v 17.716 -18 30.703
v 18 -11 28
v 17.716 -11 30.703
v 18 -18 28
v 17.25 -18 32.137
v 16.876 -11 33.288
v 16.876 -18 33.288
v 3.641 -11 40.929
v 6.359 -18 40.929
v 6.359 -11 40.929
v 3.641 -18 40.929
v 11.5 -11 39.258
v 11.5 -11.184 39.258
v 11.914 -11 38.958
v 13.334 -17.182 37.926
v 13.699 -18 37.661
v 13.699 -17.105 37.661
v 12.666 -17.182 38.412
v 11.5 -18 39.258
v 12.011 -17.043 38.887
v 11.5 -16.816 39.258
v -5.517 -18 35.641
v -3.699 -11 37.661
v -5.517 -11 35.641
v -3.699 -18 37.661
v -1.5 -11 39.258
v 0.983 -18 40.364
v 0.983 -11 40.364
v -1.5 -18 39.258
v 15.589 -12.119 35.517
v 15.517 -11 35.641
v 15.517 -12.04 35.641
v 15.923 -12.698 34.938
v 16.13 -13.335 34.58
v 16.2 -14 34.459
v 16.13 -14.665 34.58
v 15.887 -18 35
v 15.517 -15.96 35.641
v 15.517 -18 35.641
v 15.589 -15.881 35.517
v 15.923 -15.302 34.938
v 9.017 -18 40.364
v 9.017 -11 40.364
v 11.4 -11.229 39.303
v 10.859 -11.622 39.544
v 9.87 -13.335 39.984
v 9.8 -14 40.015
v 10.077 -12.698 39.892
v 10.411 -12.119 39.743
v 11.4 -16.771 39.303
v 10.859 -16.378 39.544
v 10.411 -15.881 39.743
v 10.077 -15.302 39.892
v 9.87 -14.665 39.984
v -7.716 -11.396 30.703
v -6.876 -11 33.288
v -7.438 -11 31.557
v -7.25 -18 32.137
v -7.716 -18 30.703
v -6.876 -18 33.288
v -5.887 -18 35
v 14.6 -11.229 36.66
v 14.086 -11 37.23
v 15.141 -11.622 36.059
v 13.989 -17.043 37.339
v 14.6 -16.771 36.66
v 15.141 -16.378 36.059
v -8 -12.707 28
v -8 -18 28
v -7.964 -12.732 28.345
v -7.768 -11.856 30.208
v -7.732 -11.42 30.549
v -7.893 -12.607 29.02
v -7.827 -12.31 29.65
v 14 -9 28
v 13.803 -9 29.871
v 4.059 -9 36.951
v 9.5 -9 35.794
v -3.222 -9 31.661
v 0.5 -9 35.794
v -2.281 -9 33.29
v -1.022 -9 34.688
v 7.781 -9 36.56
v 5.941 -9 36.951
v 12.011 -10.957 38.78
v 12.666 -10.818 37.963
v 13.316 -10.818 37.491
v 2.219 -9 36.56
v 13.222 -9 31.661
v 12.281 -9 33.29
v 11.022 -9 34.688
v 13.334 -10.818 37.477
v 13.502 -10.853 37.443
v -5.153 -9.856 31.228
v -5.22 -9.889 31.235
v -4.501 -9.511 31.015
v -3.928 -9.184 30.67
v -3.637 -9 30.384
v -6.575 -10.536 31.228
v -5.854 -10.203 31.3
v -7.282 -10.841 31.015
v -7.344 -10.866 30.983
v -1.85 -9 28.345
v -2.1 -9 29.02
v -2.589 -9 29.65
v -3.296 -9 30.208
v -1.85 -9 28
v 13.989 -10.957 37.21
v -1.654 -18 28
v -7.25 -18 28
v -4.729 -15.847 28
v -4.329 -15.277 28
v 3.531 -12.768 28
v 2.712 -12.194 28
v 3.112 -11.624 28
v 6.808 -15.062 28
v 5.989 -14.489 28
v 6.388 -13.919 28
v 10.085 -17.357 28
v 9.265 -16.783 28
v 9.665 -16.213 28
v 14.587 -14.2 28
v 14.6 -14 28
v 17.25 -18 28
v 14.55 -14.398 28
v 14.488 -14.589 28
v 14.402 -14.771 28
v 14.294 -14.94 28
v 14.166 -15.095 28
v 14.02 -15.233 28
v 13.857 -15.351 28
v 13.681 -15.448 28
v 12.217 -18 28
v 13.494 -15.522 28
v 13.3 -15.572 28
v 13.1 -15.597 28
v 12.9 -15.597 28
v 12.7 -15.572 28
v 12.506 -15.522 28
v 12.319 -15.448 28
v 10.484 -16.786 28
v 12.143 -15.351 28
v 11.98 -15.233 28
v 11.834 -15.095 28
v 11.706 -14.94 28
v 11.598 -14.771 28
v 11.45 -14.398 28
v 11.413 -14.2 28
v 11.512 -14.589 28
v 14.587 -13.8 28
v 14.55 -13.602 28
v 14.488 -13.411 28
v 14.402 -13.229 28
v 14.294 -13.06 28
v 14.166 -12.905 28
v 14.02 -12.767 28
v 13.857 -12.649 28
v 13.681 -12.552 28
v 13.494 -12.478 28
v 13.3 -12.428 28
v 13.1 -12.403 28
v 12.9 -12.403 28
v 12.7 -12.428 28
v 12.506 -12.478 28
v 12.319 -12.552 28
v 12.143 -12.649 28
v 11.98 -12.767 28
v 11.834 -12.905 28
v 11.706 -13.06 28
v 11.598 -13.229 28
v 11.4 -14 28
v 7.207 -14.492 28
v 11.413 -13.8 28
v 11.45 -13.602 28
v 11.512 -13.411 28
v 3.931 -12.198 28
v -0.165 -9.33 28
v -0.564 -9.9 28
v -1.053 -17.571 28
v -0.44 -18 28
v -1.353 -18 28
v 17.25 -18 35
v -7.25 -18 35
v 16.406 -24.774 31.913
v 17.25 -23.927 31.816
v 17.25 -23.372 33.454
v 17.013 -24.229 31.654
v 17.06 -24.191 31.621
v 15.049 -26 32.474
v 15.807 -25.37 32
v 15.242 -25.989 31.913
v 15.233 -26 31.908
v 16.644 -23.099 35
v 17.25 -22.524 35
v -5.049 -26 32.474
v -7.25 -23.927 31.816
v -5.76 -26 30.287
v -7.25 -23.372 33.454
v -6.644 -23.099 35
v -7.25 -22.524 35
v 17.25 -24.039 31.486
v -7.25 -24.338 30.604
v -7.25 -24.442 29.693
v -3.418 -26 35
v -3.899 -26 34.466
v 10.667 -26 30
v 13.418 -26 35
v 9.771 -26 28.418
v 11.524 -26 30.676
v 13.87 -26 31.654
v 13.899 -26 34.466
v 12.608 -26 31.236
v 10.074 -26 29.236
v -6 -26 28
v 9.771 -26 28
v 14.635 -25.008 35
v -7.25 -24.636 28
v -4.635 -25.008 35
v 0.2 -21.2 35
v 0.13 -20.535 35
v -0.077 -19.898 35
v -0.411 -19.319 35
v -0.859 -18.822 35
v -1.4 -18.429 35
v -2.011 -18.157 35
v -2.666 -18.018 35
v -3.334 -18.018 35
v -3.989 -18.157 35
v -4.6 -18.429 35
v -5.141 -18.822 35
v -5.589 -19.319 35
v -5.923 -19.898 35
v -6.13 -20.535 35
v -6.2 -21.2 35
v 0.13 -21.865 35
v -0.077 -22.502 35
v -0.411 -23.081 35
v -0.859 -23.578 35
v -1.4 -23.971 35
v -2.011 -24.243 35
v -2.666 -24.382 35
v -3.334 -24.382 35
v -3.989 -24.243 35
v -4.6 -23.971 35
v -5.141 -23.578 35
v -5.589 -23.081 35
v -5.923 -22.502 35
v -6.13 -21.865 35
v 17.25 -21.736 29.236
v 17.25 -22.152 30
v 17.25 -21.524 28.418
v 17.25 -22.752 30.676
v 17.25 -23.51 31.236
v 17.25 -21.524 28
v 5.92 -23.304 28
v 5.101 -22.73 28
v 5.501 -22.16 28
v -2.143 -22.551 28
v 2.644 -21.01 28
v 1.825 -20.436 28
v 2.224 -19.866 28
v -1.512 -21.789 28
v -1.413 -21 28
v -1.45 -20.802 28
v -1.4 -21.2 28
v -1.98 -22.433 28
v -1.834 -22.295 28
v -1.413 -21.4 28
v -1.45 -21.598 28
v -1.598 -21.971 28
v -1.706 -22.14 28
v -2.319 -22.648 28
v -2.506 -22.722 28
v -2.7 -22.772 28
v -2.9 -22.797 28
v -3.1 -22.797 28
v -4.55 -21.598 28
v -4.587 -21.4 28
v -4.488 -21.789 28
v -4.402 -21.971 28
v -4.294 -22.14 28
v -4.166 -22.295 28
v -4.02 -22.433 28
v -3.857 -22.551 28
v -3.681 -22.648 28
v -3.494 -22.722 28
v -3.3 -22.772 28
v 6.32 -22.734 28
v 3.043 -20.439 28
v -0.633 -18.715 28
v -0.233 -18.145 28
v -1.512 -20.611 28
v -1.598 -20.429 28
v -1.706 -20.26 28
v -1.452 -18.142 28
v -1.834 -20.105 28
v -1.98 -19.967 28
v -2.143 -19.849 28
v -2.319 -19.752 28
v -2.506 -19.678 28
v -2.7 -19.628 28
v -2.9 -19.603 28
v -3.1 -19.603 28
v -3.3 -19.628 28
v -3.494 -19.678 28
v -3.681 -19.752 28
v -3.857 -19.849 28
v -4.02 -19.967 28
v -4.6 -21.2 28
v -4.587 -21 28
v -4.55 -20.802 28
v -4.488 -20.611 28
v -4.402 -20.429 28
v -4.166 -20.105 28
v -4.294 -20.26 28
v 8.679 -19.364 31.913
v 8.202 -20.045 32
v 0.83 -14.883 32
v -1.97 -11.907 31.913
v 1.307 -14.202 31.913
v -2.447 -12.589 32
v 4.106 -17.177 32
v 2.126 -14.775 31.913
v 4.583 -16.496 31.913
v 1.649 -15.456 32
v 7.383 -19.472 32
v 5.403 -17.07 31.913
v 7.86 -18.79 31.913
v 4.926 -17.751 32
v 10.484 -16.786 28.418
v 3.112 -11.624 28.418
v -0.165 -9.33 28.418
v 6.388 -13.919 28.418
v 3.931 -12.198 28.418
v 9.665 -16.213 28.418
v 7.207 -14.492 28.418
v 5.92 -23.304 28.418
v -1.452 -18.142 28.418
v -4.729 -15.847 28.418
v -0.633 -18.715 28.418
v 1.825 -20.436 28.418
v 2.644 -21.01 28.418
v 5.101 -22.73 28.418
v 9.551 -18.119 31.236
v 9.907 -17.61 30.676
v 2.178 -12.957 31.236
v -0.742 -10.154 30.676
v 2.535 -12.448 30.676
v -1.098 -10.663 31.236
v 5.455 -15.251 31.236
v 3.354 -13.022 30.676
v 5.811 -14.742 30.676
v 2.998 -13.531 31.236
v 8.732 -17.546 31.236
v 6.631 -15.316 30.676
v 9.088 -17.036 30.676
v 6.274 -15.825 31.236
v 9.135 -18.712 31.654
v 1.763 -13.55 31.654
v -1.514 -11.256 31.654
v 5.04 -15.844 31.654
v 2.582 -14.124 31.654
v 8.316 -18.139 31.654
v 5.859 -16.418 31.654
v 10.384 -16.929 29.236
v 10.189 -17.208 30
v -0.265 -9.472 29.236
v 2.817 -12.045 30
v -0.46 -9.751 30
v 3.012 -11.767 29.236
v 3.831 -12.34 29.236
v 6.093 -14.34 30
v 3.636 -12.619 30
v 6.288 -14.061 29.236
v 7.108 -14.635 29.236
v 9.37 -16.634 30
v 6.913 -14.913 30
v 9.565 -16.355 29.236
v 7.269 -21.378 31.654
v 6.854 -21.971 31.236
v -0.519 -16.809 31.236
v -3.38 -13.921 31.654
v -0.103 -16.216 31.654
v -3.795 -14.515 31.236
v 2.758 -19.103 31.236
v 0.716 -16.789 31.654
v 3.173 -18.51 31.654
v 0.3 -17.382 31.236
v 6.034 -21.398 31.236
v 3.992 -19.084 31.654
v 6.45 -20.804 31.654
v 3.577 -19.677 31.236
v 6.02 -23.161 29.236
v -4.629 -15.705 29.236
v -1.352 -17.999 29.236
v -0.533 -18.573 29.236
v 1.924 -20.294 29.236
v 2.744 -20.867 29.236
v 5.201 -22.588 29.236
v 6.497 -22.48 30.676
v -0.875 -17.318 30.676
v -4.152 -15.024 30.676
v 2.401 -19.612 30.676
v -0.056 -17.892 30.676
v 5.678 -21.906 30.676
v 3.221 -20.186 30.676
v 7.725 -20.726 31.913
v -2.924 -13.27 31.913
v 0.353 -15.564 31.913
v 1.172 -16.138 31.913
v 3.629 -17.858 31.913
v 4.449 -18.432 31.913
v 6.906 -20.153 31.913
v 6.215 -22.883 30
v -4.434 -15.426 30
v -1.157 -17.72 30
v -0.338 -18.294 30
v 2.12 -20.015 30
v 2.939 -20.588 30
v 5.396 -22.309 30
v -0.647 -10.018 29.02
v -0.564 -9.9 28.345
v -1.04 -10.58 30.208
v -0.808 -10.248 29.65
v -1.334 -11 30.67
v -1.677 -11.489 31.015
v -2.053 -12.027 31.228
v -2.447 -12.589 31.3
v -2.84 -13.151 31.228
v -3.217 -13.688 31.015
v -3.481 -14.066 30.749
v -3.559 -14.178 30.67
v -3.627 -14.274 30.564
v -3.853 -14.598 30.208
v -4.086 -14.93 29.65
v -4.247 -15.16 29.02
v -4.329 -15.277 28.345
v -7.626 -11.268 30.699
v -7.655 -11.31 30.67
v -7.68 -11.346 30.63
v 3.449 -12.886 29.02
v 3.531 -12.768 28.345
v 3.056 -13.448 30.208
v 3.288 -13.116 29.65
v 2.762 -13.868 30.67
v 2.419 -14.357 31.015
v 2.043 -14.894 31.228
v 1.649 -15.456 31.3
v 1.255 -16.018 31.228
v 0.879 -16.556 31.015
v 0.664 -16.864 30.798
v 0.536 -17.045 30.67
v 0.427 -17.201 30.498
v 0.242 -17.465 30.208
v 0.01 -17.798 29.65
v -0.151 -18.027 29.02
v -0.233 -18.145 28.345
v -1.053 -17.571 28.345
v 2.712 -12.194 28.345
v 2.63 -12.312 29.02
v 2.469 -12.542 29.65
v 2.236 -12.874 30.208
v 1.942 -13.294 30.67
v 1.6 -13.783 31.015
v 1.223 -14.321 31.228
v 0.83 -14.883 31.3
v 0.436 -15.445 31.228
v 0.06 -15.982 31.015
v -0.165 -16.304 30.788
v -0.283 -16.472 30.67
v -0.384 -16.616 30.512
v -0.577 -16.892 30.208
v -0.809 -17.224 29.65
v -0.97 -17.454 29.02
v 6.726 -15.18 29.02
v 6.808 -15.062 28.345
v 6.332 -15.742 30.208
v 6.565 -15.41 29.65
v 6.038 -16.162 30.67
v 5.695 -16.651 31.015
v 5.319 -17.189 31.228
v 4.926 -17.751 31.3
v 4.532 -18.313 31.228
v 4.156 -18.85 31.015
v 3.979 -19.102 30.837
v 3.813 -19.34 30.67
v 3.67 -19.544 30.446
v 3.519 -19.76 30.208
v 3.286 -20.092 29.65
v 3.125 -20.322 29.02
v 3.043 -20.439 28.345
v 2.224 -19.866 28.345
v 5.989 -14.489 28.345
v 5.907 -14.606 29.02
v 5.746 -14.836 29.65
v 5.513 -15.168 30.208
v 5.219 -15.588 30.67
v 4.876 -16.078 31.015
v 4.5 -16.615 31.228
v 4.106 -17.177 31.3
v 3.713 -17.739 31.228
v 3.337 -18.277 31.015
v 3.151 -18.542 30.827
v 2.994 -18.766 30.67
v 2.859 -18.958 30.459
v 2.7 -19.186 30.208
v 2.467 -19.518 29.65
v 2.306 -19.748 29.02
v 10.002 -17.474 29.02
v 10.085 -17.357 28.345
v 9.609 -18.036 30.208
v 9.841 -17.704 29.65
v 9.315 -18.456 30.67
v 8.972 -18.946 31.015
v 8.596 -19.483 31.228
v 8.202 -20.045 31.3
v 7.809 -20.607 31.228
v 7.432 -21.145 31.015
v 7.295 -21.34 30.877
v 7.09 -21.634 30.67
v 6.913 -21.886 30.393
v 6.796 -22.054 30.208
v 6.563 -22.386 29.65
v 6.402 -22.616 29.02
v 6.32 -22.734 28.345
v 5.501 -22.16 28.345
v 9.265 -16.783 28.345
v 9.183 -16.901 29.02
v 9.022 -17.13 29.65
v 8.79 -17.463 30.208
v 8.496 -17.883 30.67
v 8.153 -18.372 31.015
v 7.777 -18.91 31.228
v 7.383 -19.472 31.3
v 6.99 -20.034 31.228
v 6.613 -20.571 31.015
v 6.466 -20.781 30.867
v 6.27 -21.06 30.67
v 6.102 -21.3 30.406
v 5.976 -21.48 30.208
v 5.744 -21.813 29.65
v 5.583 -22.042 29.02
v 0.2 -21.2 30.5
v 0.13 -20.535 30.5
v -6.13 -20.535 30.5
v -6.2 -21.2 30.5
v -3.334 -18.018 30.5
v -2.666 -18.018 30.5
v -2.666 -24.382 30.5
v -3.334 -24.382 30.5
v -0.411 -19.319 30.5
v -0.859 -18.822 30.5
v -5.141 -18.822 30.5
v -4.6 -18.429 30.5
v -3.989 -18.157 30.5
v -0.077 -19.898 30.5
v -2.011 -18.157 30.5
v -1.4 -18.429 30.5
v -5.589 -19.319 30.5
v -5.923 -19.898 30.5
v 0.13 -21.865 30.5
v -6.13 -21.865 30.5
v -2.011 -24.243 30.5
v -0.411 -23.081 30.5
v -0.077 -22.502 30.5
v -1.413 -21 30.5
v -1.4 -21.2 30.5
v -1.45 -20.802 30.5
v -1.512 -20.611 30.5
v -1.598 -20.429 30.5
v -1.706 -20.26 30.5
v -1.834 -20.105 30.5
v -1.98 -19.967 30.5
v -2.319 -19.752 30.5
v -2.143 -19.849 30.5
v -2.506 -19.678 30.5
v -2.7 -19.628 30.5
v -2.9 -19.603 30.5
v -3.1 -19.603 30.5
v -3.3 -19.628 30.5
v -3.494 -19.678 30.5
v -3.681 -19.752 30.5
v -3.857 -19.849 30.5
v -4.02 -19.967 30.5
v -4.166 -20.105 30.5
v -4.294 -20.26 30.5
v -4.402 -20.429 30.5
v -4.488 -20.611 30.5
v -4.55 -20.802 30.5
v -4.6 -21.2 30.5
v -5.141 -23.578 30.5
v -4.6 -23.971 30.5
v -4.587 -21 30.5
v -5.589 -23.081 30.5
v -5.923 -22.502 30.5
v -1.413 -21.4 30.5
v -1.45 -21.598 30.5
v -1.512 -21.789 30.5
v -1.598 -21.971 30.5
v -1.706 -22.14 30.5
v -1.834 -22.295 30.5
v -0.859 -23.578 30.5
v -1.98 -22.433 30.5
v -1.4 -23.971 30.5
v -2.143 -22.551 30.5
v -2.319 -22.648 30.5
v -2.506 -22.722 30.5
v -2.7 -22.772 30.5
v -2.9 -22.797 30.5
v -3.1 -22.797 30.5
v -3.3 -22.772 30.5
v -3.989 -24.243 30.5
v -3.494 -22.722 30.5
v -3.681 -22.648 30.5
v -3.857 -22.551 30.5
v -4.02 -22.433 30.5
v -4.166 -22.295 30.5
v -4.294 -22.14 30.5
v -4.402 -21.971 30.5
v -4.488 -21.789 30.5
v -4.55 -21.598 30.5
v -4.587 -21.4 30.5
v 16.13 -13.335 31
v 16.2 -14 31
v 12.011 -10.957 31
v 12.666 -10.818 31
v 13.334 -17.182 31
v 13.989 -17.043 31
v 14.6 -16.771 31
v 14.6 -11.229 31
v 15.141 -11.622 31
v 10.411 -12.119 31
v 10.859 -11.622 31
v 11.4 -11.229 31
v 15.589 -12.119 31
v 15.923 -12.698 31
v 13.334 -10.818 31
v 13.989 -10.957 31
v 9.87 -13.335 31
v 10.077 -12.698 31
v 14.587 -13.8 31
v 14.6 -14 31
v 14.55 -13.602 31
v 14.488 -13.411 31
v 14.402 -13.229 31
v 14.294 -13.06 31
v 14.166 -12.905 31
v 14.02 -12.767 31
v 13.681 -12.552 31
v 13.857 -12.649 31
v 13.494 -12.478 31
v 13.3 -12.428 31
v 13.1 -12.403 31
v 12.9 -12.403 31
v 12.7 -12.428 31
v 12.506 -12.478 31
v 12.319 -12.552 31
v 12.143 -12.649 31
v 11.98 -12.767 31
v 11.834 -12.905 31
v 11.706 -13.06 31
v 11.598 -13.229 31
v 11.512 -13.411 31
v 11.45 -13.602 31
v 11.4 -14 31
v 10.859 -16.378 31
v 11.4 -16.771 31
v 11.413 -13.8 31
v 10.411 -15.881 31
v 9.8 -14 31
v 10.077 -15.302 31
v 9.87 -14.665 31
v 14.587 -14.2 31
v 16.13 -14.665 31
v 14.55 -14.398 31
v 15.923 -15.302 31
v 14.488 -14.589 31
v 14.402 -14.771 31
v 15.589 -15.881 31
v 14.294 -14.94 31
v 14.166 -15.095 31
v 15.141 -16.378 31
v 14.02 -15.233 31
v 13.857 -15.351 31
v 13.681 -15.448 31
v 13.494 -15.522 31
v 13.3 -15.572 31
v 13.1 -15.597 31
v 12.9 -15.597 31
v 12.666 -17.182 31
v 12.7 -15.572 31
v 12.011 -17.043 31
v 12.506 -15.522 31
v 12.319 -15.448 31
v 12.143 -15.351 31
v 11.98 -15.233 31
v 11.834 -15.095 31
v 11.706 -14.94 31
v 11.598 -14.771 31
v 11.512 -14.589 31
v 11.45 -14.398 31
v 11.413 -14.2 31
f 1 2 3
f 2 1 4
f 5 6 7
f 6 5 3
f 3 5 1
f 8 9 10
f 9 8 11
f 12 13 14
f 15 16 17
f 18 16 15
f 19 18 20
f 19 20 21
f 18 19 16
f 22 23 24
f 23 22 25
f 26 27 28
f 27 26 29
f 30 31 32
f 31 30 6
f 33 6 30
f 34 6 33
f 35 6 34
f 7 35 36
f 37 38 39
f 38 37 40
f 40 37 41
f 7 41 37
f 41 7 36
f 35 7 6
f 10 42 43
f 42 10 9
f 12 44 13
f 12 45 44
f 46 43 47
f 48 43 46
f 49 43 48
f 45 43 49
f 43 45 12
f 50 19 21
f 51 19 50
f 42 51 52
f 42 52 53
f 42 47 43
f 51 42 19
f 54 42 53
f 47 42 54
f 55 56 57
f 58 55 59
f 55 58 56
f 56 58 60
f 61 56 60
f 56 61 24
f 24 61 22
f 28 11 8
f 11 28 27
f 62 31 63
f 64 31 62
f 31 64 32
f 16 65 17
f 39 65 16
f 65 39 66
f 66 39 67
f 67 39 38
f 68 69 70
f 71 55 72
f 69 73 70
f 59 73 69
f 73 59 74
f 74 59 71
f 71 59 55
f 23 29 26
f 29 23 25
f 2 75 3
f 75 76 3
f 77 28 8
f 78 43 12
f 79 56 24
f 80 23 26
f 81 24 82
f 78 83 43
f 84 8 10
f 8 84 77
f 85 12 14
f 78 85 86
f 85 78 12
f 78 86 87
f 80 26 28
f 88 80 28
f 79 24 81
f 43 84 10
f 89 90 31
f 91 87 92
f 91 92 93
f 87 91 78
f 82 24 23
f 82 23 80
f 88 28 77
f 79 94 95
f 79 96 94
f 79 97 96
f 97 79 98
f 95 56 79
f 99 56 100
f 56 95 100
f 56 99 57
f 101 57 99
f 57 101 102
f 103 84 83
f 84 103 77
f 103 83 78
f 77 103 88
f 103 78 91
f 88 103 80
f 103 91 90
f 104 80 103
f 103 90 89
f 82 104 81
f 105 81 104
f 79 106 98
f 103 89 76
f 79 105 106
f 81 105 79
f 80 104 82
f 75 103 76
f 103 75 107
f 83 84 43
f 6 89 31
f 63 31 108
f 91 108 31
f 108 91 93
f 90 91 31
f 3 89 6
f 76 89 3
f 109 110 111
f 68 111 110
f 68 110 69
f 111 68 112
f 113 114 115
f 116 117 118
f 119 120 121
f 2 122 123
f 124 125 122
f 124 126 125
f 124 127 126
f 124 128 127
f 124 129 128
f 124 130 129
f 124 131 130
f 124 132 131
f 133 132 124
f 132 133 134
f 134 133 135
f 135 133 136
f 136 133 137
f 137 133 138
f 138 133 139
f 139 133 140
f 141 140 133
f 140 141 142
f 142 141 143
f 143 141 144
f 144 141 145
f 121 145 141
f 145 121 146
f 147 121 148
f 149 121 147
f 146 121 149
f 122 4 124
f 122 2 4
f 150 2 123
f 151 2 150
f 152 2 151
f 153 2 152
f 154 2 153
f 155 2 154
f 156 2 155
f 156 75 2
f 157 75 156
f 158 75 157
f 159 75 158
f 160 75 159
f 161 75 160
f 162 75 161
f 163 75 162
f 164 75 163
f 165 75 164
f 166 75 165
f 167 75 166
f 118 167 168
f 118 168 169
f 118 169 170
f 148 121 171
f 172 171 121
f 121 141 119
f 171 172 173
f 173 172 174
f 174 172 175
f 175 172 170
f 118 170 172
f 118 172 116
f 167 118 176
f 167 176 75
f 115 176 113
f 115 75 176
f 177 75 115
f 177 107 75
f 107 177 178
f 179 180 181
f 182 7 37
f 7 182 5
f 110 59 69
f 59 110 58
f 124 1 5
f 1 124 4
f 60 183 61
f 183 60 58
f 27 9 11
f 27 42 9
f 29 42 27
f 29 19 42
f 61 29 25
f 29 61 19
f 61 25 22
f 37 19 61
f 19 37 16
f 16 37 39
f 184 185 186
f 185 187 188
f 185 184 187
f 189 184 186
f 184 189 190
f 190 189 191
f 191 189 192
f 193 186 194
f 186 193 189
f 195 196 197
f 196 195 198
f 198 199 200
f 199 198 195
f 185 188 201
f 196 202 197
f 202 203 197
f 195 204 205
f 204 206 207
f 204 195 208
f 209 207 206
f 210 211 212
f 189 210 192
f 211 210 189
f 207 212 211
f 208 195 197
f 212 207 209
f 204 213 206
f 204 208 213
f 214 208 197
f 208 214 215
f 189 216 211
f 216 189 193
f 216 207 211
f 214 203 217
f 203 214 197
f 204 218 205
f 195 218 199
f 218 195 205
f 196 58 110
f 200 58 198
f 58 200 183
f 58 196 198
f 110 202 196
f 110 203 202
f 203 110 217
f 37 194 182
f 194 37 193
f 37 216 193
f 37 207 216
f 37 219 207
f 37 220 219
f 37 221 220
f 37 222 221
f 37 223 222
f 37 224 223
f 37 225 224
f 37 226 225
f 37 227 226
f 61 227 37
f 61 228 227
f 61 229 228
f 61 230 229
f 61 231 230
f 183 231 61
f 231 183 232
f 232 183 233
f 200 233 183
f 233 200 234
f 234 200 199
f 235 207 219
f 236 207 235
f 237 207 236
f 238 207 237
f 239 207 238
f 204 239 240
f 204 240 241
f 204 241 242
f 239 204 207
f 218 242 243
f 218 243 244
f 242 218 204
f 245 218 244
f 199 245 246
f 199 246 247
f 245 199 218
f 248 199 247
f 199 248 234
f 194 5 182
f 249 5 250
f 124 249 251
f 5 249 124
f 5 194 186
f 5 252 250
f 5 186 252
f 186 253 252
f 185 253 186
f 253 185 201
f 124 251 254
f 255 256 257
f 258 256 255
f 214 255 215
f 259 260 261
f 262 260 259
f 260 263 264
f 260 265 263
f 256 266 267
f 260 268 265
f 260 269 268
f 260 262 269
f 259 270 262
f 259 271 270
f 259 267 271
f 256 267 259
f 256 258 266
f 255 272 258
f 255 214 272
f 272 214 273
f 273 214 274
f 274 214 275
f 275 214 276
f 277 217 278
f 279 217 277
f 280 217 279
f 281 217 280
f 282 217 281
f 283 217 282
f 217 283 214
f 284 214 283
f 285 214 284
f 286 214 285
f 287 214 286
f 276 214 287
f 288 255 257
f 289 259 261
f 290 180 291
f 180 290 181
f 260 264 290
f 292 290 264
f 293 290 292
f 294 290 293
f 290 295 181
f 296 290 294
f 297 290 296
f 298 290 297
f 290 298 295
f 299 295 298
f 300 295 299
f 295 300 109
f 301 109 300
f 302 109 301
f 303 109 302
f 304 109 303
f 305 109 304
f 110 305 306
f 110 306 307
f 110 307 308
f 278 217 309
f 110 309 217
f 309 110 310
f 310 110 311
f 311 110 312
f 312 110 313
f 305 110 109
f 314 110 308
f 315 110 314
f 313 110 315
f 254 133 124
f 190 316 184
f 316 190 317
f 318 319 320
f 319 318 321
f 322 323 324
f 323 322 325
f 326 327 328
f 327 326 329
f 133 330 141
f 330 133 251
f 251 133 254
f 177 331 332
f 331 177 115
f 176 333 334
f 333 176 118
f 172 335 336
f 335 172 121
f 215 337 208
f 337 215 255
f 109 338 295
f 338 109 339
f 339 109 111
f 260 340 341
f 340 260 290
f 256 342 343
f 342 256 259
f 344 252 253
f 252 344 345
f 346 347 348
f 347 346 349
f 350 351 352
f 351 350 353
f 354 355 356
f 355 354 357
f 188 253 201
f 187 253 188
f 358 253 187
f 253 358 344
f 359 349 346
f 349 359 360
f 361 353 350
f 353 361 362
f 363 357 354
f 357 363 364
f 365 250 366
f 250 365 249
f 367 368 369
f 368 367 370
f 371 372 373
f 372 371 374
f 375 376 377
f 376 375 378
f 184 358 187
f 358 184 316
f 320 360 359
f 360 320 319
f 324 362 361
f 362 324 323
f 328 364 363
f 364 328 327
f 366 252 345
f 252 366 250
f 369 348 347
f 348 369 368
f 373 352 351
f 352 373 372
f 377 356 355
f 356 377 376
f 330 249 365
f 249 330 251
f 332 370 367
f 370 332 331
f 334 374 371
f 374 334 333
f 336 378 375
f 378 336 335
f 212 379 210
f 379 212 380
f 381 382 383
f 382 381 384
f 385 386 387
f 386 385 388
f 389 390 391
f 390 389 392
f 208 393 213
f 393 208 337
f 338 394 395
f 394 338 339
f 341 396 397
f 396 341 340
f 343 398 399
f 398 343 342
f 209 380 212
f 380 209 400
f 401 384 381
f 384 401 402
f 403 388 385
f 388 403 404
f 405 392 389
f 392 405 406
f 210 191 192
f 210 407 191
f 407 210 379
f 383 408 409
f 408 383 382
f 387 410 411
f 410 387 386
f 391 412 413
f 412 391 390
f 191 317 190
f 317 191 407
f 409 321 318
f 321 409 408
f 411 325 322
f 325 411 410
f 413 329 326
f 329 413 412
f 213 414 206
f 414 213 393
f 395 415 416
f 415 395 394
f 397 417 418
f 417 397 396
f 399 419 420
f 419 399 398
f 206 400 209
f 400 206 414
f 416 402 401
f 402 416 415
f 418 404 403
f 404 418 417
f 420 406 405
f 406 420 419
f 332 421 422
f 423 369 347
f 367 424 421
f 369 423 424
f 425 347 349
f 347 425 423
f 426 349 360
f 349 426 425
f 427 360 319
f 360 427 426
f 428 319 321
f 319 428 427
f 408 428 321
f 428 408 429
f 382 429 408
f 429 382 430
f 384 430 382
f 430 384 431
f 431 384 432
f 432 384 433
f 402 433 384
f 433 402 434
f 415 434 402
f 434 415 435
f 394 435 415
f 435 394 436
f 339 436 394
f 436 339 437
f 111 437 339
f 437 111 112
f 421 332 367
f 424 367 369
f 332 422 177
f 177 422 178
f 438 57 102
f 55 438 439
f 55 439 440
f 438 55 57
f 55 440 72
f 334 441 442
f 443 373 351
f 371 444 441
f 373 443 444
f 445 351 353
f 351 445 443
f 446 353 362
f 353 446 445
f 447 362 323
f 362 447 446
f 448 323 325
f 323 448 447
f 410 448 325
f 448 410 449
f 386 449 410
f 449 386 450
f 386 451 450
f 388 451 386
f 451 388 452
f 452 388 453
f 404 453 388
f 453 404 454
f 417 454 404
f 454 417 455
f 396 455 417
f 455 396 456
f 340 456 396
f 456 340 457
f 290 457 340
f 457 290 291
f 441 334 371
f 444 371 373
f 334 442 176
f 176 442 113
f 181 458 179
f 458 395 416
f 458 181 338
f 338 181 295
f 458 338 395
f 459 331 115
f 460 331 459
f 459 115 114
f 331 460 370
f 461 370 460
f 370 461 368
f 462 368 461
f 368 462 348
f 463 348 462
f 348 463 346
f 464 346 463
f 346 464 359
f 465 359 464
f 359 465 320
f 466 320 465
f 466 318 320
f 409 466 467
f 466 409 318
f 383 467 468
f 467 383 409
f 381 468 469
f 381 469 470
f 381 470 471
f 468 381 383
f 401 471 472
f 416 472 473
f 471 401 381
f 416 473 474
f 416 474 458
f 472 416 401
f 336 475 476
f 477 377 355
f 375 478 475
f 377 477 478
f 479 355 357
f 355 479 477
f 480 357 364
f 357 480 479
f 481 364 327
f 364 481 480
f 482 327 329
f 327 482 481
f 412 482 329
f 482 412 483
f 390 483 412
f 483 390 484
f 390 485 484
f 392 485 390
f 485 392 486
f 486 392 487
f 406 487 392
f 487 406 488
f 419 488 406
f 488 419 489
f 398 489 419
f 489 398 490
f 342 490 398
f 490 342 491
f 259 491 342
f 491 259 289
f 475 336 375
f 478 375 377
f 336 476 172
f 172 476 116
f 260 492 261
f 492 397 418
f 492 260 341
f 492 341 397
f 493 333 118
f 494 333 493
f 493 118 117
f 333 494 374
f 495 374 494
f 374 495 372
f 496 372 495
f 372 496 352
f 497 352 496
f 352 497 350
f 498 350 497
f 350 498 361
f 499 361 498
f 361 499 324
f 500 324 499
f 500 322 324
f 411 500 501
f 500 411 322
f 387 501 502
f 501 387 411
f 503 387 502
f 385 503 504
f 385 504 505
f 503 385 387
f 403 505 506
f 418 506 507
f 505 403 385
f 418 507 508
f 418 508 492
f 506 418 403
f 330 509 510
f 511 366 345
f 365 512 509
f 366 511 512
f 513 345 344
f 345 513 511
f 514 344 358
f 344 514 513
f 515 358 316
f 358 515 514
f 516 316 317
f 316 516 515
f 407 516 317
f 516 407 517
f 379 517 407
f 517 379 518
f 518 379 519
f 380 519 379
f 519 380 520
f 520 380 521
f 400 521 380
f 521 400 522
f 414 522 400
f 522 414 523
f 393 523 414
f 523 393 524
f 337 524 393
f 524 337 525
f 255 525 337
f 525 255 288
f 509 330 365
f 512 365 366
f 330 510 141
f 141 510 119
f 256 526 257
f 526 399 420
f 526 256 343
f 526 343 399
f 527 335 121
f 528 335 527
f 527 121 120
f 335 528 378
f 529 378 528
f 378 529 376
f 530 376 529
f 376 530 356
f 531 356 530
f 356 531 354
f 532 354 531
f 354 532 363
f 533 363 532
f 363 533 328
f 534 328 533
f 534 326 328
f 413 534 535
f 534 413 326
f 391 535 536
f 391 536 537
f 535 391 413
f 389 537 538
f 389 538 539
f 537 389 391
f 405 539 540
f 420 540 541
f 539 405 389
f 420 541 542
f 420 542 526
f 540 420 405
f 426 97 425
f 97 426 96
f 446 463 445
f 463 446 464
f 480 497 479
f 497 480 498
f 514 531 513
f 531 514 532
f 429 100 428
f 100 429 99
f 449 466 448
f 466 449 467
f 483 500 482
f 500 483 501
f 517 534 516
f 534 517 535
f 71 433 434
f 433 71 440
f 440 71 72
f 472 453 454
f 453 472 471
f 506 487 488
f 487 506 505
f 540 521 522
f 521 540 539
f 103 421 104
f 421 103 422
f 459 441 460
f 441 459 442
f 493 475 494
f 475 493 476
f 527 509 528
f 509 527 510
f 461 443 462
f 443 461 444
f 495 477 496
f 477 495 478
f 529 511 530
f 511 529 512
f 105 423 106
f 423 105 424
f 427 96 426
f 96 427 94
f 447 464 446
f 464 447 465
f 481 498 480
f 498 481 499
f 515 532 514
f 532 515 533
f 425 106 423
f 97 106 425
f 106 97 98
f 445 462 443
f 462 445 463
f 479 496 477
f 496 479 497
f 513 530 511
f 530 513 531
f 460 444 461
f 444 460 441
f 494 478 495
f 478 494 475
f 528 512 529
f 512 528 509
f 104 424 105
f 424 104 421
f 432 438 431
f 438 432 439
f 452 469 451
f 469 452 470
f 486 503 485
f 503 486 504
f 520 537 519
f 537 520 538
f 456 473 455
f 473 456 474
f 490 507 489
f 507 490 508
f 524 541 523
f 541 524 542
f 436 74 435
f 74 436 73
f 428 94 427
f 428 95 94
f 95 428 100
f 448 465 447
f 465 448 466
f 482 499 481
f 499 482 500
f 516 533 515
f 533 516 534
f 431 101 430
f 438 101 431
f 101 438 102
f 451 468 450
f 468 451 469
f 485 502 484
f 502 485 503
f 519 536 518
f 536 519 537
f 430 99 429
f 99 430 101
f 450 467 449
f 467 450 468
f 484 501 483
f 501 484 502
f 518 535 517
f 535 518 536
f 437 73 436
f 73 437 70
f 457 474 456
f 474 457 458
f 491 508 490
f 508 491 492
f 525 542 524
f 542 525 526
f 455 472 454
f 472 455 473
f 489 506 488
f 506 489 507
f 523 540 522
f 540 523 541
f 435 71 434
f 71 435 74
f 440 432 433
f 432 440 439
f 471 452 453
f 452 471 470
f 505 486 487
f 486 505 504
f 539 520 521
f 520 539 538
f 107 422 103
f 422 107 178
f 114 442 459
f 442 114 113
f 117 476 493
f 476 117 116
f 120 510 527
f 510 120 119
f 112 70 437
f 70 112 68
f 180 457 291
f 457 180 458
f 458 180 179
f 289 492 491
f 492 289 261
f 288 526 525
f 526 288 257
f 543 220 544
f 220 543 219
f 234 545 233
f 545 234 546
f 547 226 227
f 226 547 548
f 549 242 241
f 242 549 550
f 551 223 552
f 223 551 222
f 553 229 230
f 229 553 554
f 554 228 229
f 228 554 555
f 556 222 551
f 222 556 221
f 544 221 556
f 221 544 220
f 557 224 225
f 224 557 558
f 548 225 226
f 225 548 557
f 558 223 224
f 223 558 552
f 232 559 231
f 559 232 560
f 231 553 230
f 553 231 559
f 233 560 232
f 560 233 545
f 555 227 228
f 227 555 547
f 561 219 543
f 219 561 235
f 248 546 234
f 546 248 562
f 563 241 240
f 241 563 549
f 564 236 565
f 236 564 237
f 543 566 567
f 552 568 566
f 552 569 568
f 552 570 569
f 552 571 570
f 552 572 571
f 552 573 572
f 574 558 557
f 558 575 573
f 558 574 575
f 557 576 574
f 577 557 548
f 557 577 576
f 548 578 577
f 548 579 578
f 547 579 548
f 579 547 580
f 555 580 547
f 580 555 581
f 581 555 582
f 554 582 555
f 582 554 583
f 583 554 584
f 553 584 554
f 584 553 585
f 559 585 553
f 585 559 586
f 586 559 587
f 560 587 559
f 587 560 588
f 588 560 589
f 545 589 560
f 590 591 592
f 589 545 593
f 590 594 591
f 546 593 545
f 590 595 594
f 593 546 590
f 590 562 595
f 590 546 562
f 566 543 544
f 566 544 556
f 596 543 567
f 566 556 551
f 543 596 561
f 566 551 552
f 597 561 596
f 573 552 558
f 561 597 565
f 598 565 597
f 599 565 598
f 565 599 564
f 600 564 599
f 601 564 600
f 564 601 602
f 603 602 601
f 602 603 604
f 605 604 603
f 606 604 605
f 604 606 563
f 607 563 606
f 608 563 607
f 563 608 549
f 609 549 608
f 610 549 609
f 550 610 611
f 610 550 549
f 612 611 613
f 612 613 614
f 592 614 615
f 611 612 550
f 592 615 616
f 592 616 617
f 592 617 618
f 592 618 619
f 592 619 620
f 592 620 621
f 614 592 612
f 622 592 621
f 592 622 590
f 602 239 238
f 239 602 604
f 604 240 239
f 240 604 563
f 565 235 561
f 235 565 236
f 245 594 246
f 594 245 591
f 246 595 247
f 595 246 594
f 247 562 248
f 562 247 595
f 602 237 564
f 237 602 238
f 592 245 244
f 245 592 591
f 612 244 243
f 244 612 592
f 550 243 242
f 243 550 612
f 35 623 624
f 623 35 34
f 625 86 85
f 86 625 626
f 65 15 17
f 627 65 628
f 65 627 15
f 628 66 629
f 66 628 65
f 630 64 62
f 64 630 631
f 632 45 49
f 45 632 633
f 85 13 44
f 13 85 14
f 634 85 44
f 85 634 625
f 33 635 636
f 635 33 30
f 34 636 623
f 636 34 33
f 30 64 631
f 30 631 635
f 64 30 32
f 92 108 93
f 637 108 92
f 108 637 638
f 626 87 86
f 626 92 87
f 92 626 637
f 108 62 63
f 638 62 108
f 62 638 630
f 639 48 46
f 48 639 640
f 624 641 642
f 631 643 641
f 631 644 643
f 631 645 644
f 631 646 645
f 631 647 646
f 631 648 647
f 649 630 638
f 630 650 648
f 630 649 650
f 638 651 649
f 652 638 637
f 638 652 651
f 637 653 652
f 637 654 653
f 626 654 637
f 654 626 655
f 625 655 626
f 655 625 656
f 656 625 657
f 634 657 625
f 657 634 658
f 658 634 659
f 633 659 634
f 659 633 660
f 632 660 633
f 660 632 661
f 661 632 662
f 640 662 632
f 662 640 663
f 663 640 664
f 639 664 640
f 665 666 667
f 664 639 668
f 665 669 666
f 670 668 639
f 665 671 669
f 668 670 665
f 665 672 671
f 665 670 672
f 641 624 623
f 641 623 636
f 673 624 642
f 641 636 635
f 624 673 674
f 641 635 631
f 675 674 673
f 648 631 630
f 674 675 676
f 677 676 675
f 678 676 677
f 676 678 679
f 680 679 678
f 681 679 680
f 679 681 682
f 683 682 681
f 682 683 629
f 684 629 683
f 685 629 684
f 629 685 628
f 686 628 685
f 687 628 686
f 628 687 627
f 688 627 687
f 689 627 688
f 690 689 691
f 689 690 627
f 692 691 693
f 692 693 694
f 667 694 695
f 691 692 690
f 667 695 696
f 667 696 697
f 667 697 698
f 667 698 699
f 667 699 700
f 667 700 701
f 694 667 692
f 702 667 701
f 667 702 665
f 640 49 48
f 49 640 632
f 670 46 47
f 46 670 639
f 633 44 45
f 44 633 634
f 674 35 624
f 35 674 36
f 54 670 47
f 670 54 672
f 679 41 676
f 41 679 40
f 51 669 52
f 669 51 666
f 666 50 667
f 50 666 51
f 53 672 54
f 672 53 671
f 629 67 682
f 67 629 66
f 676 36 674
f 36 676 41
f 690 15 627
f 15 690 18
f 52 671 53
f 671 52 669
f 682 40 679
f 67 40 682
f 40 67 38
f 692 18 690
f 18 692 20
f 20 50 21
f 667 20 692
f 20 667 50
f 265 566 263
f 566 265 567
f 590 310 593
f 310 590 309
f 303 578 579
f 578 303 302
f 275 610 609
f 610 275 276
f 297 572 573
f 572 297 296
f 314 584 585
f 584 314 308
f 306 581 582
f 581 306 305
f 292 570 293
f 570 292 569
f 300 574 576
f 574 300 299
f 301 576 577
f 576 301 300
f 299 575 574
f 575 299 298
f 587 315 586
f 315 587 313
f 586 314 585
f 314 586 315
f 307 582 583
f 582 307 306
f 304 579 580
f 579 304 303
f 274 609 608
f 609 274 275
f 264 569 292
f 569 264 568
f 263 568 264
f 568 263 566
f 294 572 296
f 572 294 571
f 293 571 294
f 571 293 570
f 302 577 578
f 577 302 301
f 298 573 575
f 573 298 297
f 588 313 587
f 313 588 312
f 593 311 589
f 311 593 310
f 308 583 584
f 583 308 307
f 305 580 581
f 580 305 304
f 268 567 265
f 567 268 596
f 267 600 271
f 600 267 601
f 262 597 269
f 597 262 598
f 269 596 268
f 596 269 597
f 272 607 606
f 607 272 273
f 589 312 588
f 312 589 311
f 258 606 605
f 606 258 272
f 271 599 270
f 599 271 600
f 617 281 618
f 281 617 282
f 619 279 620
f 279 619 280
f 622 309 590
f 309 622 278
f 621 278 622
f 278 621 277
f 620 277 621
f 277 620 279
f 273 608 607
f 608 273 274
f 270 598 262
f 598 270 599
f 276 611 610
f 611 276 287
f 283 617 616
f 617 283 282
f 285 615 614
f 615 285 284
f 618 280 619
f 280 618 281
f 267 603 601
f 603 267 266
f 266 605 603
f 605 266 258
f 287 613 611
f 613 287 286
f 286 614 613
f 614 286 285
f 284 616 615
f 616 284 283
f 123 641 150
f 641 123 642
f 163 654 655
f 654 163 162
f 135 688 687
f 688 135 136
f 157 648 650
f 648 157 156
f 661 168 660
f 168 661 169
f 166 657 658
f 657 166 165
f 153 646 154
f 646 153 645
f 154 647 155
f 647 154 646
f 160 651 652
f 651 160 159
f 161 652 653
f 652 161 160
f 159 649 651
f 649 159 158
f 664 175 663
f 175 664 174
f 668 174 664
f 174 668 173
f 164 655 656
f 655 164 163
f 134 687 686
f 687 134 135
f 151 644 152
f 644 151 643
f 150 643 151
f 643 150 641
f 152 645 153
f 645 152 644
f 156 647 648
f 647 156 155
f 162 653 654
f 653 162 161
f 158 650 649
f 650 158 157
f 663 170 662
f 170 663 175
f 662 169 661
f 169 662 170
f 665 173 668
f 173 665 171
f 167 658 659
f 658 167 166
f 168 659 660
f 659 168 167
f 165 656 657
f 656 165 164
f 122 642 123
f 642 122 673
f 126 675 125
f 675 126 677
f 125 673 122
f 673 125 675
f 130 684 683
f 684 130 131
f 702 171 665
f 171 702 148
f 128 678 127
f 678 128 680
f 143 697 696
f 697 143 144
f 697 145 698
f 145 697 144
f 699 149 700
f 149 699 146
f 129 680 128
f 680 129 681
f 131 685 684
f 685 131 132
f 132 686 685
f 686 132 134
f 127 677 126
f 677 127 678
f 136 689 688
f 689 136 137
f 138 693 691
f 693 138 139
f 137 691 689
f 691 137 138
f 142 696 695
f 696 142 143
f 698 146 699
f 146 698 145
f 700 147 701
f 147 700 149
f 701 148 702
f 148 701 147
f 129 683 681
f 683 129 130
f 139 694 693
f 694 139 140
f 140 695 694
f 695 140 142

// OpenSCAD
// PRUSA iteration4
// Heatbed cable clip
// GNU GPL v3
// Josef Průša <iam@josefprusa.cz> and contributors
// http://www.reprap.org/wiki/Prusa_Mendel
// http://prusamendel.org


 module heatbed_cable_clip()
{
    
difference()
{    
    
    union()
    {
        difference()
        {
            union()
            {
                // body base
                translate([75,99,28]) rotate([90,0,0]) cylinder( h = 15, r = 13, $fn=30); 
                translate([75,101,28]) rotate([90,0,0]) cylinder( h = 2, r1=9,r2 = 13, $fn=30); 
                
            }

             
           
            
            // cut flat and shape
            translate([60,82,14]) cube([30,20,14]);  
            translate([60,72,20]) cube([30,20,30]); 
        }
         
        
        difference() {
        translate([62.75,84,28]) cube([24.5,8,7]);
        difference () {
        translate([75,85,28]) rotate([90,0,0]) cube([30,20,10], center = true);    
        translate([75,90,28]) rotate([90,0,0]) cylinder(h=6,r1=16.5,r2=11,$fn=30);   
           
        } 
    }}
    
    // cable opening
    translate([61,102,28]) rotate([35,90,0])
    
    difference (){
   
    cylinder(h=35,r=4,$fn=30);
       
    
    translate([0,0,3]) cylinder(h=5,r=4,$fn=30);
    translate([0,0,12]) cylinder(h=1,r=4,$fn=30); 
    translate([0,0,16]) cylinder(h=1,r=4,$fn=30); 
    translate([0,0,20]) cylinder(h=1,r=4,$fn=30);
   
    }
     translate([61,102,28]) rotate([35,90,0]) cylinder(h=35,r=3.3,$fn=30);
    
  
    
    // screw heads
    translate([67,88.8,30.5]) rotate([0,0,0]) cylinder(h=10,r=3.2,$fn=30); 
    translate([83,96,31]) rotate([0,0,0]) cylinder(h=10,r=3.2,$fn=30); 
    
    
    // screws
            translate([67,88.8,14]) rotate([0,0,0]) cylinder(h=35,r=1.6,$fn=50); 
            translate([83,96,14]) rotate([0,0,0]) cylinder(h=35,r=1.6,$fn=50);
    

    
    
    
}


    

} 

translate([-70,-110,0]) heatbed_cable_clip();
